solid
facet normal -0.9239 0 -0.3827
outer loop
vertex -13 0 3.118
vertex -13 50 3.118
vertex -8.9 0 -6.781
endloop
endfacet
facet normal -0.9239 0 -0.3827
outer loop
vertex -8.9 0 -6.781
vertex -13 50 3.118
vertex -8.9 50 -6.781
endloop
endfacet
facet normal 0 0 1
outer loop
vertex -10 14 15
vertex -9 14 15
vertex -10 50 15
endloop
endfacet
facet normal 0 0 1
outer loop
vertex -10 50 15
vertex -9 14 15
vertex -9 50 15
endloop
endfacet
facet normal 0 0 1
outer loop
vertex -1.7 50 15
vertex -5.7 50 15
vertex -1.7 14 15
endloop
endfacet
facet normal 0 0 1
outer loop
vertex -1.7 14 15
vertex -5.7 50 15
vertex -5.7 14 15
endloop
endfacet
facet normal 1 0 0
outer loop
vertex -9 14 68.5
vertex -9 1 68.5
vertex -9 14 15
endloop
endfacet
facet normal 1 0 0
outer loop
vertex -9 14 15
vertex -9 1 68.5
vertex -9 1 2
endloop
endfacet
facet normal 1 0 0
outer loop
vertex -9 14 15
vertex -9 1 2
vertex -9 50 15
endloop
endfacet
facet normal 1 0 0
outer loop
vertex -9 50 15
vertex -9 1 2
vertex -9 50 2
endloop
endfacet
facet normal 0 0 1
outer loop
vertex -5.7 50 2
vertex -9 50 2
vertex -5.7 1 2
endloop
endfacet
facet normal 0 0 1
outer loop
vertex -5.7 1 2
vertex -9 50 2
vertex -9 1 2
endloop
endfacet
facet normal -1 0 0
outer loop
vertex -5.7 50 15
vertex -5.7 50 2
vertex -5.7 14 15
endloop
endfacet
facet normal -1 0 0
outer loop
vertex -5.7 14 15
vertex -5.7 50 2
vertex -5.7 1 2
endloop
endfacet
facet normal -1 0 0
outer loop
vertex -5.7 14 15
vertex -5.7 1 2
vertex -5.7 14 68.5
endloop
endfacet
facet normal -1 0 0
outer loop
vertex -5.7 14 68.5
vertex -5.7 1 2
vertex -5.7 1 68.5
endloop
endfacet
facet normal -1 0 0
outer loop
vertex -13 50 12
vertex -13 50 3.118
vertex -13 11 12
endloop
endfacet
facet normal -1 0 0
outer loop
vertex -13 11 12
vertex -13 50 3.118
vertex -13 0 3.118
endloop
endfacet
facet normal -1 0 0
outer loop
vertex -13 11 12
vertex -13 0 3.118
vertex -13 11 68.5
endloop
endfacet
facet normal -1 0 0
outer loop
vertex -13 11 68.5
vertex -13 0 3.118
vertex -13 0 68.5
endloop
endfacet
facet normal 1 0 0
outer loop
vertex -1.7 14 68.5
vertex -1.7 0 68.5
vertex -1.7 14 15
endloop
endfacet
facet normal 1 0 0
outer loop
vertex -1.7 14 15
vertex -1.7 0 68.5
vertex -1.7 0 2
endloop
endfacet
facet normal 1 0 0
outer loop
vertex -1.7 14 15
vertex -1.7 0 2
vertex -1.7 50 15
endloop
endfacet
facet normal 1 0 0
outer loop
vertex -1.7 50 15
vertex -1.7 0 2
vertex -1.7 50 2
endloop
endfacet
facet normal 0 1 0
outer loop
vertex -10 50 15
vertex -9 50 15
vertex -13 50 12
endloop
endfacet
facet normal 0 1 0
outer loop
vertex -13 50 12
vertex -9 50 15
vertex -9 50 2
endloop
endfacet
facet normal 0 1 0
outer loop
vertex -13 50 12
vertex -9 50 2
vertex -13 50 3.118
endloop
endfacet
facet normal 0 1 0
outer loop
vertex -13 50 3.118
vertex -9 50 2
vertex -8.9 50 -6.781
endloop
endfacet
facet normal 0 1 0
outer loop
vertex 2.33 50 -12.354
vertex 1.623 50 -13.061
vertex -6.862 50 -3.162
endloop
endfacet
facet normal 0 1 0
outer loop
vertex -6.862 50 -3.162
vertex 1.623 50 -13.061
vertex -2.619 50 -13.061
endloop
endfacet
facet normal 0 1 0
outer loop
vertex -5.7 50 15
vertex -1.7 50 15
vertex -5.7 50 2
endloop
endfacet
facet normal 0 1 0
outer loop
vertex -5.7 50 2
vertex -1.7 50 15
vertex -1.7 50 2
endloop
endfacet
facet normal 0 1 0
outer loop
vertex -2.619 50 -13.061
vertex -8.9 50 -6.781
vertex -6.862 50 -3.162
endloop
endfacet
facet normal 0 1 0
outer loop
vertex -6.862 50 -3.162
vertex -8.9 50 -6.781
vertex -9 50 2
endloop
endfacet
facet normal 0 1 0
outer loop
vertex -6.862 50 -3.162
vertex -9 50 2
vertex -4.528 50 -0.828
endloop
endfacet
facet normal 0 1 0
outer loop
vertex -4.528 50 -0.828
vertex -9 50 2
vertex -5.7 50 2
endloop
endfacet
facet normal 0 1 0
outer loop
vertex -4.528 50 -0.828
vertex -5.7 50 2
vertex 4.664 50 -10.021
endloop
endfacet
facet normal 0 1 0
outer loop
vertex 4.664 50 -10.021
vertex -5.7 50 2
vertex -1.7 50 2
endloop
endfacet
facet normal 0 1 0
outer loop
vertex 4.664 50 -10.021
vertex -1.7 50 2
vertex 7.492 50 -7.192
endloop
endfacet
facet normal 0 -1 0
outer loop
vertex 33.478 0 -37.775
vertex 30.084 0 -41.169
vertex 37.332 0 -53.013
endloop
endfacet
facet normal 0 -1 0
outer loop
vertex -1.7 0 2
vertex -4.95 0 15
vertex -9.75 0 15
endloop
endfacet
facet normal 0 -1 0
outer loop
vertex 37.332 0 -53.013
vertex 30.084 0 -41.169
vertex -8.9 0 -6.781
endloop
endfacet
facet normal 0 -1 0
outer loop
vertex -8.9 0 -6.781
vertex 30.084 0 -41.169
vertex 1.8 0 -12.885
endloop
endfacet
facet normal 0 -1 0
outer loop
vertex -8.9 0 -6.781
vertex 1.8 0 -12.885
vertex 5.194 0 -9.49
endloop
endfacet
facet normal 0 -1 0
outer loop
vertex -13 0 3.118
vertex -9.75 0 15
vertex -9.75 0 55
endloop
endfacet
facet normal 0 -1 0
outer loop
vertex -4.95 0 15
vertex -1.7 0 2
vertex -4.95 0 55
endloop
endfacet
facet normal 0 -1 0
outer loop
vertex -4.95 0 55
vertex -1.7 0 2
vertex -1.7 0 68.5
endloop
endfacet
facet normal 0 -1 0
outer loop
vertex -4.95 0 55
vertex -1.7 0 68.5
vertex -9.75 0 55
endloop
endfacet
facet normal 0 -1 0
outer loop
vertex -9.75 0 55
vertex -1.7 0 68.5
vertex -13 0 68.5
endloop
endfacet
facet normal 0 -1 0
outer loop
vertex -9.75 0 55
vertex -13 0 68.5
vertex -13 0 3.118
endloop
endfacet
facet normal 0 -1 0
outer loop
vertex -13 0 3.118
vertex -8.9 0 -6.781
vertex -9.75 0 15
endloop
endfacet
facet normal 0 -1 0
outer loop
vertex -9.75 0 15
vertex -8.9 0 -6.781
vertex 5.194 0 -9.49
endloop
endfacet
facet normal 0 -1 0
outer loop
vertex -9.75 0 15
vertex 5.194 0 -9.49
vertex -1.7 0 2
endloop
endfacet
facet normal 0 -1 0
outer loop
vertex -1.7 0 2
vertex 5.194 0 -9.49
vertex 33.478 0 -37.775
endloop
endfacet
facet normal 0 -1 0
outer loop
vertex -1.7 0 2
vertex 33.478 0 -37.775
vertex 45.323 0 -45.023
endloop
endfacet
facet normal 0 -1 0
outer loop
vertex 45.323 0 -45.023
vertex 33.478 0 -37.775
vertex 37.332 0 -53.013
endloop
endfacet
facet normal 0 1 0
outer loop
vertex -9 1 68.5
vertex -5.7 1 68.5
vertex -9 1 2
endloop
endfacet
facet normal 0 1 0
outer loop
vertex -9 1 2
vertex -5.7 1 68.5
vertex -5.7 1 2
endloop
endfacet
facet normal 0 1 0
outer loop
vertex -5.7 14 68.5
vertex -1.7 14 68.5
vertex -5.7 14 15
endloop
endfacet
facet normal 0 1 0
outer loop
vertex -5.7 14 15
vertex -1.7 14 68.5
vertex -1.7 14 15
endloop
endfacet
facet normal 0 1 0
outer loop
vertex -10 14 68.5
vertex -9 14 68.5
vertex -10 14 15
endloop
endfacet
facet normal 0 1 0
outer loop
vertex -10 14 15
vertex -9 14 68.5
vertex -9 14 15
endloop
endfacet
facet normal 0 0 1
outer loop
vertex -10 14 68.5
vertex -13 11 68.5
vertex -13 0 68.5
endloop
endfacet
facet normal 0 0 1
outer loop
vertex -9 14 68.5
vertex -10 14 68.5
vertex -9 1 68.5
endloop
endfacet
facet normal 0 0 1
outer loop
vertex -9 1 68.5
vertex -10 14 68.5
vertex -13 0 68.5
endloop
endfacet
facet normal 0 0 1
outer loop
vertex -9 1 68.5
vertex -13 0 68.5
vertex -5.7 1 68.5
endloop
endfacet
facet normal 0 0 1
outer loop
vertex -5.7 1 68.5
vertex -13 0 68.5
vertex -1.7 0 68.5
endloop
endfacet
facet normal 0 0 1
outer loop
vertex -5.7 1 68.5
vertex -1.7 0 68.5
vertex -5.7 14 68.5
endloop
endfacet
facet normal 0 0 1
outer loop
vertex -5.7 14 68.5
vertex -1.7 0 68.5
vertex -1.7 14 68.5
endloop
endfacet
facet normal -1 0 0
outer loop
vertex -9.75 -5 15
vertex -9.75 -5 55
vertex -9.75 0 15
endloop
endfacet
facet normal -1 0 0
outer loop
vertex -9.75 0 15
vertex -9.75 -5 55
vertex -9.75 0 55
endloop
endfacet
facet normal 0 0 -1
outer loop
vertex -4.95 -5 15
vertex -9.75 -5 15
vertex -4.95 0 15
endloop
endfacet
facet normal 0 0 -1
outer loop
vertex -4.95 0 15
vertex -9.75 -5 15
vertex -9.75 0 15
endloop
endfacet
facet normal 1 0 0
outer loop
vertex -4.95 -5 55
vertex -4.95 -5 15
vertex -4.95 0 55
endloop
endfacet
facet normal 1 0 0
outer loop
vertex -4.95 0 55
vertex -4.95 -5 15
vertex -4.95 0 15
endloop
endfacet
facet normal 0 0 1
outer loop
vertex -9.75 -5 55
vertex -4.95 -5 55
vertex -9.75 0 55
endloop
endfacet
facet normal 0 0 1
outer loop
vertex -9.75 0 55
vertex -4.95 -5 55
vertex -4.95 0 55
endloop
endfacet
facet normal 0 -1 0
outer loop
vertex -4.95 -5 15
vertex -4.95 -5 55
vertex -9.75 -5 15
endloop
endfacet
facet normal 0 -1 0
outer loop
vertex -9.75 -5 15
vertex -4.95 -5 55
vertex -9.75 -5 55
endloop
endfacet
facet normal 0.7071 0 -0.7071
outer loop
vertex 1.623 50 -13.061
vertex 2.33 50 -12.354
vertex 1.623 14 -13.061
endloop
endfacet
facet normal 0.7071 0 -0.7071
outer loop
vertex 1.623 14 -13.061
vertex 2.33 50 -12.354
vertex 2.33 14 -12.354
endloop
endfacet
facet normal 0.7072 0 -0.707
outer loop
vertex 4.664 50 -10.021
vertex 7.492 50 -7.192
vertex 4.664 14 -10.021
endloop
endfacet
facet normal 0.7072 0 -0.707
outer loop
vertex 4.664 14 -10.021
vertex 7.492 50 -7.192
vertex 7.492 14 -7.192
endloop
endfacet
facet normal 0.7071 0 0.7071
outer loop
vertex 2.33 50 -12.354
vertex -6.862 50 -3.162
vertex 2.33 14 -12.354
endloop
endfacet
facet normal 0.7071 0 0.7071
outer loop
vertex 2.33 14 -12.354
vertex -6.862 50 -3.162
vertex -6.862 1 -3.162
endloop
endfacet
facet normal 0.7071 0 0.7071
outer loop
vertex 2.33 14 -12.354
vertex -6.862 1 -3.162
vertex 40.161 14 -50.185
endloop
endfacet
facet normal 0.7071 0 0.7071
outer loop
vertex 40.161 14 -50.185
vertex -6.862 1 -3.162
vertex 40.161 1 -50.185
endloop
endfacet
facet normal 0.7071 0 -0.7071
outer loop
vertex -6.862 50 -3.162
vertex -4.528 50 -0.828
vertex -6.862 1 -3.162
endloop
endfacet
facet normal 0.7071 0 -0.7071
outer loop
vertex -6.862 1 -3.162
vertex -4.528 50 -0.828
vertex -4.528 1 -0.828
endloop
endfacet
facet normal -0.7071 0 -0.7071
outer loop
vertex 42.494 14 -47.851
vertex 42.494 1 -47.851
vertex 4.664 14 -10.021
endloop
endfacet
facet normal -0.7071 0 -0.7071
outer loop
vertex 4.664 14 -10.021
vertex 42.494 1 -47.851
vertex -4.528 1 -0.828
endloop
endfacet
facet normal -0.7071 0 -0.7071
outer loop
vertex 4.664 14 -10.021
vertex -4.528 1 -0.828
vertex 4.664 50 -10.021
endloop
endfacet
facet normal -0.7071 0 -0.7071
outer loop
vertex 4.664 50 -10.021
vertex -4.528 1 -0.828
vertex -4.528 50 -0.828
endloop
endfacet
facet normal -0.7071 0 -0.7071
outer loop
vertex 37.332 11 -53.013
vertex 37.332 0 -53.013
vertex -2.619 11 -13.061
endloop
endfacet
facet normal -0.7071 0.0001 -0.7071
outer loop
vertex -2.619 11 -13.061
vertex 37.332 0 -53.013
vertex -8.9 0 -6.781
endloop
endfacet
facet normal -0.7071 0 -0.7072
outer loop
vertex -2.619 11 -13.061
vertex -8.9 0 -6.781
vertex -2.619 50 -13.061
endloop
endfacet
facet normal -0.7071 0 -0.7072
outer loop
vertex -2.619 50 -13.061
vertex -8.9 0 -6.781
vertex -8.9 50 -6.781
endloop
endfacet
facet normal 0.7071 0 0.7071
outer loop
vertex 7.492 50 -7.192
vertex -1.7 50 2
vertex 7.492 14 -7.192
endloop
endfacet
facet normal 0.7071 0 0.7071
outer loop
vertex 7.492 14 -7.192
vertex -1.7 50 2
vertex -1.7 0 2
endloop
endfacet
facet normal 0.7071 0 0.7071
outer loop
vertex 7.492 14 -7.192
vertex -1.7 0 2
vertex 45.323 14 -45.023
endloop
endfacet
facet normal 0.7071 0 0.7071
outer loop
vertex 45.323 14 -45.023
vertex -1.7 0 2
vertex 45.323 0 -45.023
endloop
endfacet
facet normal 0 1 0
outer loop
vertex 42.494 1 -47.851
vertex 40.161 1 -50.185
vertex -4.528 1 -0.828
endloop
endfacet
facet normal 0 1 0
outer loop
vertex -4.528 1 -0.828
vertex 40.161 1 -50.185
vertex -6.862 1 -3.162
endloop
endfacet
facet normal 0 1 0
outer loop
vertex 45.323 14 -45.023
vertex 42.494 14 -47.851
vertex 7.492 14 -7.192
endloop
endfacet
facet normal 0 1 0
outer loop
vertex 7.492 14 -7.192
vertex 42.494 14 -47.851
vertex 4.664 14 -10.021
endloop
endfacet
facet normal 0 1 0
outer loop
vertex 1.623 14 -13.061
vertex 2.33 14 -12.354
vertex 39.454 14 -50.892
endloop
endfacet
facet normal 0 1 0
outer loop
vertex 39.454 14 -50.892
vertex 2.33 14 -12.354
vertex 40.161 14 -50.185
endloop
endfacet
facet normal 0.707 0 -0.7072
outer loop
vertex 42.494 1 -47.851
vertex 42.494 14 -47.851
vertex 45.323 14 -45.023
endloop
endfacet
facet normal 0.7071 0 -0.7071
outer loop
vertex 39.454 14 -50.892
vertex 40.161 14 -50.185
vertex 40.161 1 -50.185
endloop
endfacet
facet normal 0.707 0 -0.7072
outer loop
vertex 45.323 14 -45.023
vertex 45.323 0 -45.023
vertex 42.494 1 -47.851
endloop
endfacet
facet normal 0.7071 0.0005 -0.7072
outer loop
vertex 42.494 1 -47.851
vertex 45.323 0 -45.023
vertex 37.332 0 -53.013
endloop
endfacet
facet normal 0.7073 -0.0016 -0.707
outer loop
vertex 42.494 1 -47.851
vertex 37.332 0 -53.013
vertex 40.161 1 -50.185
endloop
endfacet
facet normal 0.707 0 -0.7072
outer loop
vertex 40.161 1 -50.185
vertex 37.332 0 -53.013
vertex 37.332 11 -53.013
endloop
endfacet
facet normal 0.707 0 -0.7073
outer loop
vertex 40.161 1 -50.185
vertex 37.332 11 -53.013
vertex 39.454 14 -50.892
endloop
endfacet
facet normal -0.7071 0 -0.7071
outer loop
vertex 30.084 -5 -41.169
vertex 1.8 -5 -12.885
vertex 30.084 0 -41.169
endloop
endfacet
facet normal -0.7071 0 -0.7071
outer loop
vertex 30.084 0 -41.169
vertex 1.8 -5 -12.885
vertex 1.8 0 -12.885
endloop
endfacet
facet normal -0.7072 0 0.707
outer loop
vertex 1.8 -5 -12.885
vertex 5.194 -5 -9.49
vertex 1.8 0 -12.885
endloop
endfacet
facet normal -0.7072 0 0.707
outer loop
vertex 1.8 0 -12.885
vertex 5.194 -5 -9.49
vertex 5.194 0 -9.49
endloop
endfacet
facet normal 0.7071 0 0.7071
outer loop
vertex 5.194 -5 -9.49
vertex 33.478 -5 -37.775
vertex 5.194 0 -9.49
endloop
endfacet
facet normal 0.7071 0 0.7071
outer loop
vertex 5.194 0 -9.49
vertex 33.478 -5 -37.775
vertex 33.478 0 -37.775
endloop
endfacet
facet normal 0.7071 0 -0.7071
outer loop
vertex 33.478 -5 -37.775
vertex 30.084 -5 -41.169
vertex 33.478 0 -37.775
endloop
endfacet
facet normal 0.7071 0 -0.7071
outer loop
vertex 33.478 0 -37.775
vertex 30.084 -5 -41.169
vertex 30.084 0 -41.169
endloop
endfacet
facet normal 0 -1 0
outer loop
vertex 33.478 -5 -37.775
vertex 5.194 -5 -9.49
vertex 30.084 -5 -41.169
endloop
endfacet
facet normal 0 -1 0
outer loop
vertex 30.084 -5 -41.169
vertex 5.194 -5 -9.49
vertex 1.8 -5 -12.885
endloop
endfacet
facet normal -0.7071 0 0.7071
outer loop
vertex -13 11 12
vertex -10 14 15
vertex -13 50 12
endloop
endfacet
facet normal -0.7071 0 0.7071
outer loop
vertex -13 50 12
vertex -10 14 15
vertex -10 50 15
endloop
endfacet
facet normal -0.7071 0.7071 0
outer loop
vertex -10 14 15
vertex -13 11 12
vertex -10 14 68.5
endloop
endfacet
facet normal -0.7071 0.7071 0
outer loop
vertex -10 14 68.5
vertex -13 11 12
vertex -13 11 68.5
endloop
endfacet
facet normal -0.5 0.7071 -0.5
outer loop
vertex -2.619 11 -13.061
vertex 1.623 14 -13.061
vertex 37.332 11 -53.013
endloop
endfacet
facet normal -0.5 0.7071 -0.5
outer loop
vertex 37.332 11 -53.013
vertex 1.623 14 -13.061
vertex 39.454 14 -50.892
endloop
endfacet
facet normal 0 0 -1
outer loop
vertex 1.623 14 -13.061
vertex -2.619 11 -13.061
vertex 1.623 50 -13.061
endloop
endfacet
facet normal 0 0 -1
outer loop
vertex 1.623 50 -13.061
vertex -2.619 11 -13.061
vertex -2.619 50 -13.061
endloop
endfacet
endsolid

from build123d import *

# Parameters (mm, degrees)
BOSS_EXTRUDE1_DEPTH = 50
SKETCH3_W           = 3.3
SKETCH3_H           = 1
BOSS_EXTRUDE2_DEPTH = 13
BOSS_EXTRUDE3_DEPTH = 53.5
SKETCH6_W           = 4.8
SKETCH6_H           = 40
BOSS_EXTRUDE4_DEPTH = 5
CHAMFER1_START      = -14
CHAMFER1_OUTLINE_W  = 52
CHAMFER1_OUTLINE_H  = 13
CHAMFER1_DEPTH      = 3.182909169
CHAMFER2_SIZE       = 3


with BuildPart() as part:
    # Sketch2 → Boss-Extrude1 (new body)
    with BuildSketch(Plane(origin=(0, 0, 0), x_dir=(1, 0, 0), z_dir=(0, 1, 0))):
        Polygon((-1.7, -2), (-1.7, -15), (-5.7, -15), (-5.7, -2), (-9, -2), (-9, -15), (-13, -15), (-13, 2.680601608), align=None)
    extrude(amount=BOSS_EXTRUDE1_DEPTH)

    # Sketch3 → Boss-Extrude2 (add)
    with BuildSketch(Plane.XY.offset(2)):
        with Locations((-7.35, 0.5)):
            Rectangle(SKETCH3_W, SKETCH3_H)
    extrude(amount=BOSS_EXTRUDE2_DEPTH)

    # Sketch5 → Boss-Extrude3 (add)
    with BuildSketch(Plane.XY.offset(15)):
        Polygon((-13, 0), (-1.7, 0), (-1.7, 14), (-5.7, 14), (-5.7, 1), (-9, 1), (-9, 14), (-13, 14), align=None)
    extrude(amount=BOSS_EXTRUDE3_DEPTH)

    # Sketch6 → Boss-Extrude4 (add)
    with BuildSketch(Plane(origin=(0, 0, 0), x_dir=(-1, 0, 0), z_dir=(0, -1, 0))):
        with Locations((7.35, -35)):
            Rectangle(SKETCH6_W, SKETCH6_H)
    extrude(amount=BOSS_EXTRUDE4_DEPTH)

    # Mirror1: part across plane


with BuildPart() as part_1:
    add(part.part)
    add(part.part.mirror(Plane(origin=(-0.956063716, 0, 2.308147732), x_dir=(0.9238798691632129, 0, 0.38268261961443256), z_dir=(0.3826826196144326, 0, -0.9238798691632131))))

    # Chamfer1: read off the stored shape, not the designer's step
    # Chamfer1 outline → Chamfer1 (cut)
    with BuildSketch(Plane(origin=(0, 0, 0), x_dir=(0, 1, 0), z_dir=(0.9238798691632129, 0, 0.38268261961443295)).offset(CHAMFER1_START)):
        with Locations((25, 2.5)):
            Rectangle(CHAMFER1_OUTLINE_W, CHAMFER1_OUTLINE_H)
    extrude(amount=CHAMFER1_DEPTH, mode=Mode.SUBTRACT)

    # Chamfer2
    chamfer2_edges = [part_1.edges().sort_by_distance(p)[0] for p in [
        (-13, 32, 15),
        (-13, 14, 41.75),
        (-0.497948704, 32, -15.182696898),
        (18.417124413, 14, -34.097836574),
    ]]
    chamfer(chamfer2_edges, length=CHAMFER2_SIZE)


solid = part_1.part
